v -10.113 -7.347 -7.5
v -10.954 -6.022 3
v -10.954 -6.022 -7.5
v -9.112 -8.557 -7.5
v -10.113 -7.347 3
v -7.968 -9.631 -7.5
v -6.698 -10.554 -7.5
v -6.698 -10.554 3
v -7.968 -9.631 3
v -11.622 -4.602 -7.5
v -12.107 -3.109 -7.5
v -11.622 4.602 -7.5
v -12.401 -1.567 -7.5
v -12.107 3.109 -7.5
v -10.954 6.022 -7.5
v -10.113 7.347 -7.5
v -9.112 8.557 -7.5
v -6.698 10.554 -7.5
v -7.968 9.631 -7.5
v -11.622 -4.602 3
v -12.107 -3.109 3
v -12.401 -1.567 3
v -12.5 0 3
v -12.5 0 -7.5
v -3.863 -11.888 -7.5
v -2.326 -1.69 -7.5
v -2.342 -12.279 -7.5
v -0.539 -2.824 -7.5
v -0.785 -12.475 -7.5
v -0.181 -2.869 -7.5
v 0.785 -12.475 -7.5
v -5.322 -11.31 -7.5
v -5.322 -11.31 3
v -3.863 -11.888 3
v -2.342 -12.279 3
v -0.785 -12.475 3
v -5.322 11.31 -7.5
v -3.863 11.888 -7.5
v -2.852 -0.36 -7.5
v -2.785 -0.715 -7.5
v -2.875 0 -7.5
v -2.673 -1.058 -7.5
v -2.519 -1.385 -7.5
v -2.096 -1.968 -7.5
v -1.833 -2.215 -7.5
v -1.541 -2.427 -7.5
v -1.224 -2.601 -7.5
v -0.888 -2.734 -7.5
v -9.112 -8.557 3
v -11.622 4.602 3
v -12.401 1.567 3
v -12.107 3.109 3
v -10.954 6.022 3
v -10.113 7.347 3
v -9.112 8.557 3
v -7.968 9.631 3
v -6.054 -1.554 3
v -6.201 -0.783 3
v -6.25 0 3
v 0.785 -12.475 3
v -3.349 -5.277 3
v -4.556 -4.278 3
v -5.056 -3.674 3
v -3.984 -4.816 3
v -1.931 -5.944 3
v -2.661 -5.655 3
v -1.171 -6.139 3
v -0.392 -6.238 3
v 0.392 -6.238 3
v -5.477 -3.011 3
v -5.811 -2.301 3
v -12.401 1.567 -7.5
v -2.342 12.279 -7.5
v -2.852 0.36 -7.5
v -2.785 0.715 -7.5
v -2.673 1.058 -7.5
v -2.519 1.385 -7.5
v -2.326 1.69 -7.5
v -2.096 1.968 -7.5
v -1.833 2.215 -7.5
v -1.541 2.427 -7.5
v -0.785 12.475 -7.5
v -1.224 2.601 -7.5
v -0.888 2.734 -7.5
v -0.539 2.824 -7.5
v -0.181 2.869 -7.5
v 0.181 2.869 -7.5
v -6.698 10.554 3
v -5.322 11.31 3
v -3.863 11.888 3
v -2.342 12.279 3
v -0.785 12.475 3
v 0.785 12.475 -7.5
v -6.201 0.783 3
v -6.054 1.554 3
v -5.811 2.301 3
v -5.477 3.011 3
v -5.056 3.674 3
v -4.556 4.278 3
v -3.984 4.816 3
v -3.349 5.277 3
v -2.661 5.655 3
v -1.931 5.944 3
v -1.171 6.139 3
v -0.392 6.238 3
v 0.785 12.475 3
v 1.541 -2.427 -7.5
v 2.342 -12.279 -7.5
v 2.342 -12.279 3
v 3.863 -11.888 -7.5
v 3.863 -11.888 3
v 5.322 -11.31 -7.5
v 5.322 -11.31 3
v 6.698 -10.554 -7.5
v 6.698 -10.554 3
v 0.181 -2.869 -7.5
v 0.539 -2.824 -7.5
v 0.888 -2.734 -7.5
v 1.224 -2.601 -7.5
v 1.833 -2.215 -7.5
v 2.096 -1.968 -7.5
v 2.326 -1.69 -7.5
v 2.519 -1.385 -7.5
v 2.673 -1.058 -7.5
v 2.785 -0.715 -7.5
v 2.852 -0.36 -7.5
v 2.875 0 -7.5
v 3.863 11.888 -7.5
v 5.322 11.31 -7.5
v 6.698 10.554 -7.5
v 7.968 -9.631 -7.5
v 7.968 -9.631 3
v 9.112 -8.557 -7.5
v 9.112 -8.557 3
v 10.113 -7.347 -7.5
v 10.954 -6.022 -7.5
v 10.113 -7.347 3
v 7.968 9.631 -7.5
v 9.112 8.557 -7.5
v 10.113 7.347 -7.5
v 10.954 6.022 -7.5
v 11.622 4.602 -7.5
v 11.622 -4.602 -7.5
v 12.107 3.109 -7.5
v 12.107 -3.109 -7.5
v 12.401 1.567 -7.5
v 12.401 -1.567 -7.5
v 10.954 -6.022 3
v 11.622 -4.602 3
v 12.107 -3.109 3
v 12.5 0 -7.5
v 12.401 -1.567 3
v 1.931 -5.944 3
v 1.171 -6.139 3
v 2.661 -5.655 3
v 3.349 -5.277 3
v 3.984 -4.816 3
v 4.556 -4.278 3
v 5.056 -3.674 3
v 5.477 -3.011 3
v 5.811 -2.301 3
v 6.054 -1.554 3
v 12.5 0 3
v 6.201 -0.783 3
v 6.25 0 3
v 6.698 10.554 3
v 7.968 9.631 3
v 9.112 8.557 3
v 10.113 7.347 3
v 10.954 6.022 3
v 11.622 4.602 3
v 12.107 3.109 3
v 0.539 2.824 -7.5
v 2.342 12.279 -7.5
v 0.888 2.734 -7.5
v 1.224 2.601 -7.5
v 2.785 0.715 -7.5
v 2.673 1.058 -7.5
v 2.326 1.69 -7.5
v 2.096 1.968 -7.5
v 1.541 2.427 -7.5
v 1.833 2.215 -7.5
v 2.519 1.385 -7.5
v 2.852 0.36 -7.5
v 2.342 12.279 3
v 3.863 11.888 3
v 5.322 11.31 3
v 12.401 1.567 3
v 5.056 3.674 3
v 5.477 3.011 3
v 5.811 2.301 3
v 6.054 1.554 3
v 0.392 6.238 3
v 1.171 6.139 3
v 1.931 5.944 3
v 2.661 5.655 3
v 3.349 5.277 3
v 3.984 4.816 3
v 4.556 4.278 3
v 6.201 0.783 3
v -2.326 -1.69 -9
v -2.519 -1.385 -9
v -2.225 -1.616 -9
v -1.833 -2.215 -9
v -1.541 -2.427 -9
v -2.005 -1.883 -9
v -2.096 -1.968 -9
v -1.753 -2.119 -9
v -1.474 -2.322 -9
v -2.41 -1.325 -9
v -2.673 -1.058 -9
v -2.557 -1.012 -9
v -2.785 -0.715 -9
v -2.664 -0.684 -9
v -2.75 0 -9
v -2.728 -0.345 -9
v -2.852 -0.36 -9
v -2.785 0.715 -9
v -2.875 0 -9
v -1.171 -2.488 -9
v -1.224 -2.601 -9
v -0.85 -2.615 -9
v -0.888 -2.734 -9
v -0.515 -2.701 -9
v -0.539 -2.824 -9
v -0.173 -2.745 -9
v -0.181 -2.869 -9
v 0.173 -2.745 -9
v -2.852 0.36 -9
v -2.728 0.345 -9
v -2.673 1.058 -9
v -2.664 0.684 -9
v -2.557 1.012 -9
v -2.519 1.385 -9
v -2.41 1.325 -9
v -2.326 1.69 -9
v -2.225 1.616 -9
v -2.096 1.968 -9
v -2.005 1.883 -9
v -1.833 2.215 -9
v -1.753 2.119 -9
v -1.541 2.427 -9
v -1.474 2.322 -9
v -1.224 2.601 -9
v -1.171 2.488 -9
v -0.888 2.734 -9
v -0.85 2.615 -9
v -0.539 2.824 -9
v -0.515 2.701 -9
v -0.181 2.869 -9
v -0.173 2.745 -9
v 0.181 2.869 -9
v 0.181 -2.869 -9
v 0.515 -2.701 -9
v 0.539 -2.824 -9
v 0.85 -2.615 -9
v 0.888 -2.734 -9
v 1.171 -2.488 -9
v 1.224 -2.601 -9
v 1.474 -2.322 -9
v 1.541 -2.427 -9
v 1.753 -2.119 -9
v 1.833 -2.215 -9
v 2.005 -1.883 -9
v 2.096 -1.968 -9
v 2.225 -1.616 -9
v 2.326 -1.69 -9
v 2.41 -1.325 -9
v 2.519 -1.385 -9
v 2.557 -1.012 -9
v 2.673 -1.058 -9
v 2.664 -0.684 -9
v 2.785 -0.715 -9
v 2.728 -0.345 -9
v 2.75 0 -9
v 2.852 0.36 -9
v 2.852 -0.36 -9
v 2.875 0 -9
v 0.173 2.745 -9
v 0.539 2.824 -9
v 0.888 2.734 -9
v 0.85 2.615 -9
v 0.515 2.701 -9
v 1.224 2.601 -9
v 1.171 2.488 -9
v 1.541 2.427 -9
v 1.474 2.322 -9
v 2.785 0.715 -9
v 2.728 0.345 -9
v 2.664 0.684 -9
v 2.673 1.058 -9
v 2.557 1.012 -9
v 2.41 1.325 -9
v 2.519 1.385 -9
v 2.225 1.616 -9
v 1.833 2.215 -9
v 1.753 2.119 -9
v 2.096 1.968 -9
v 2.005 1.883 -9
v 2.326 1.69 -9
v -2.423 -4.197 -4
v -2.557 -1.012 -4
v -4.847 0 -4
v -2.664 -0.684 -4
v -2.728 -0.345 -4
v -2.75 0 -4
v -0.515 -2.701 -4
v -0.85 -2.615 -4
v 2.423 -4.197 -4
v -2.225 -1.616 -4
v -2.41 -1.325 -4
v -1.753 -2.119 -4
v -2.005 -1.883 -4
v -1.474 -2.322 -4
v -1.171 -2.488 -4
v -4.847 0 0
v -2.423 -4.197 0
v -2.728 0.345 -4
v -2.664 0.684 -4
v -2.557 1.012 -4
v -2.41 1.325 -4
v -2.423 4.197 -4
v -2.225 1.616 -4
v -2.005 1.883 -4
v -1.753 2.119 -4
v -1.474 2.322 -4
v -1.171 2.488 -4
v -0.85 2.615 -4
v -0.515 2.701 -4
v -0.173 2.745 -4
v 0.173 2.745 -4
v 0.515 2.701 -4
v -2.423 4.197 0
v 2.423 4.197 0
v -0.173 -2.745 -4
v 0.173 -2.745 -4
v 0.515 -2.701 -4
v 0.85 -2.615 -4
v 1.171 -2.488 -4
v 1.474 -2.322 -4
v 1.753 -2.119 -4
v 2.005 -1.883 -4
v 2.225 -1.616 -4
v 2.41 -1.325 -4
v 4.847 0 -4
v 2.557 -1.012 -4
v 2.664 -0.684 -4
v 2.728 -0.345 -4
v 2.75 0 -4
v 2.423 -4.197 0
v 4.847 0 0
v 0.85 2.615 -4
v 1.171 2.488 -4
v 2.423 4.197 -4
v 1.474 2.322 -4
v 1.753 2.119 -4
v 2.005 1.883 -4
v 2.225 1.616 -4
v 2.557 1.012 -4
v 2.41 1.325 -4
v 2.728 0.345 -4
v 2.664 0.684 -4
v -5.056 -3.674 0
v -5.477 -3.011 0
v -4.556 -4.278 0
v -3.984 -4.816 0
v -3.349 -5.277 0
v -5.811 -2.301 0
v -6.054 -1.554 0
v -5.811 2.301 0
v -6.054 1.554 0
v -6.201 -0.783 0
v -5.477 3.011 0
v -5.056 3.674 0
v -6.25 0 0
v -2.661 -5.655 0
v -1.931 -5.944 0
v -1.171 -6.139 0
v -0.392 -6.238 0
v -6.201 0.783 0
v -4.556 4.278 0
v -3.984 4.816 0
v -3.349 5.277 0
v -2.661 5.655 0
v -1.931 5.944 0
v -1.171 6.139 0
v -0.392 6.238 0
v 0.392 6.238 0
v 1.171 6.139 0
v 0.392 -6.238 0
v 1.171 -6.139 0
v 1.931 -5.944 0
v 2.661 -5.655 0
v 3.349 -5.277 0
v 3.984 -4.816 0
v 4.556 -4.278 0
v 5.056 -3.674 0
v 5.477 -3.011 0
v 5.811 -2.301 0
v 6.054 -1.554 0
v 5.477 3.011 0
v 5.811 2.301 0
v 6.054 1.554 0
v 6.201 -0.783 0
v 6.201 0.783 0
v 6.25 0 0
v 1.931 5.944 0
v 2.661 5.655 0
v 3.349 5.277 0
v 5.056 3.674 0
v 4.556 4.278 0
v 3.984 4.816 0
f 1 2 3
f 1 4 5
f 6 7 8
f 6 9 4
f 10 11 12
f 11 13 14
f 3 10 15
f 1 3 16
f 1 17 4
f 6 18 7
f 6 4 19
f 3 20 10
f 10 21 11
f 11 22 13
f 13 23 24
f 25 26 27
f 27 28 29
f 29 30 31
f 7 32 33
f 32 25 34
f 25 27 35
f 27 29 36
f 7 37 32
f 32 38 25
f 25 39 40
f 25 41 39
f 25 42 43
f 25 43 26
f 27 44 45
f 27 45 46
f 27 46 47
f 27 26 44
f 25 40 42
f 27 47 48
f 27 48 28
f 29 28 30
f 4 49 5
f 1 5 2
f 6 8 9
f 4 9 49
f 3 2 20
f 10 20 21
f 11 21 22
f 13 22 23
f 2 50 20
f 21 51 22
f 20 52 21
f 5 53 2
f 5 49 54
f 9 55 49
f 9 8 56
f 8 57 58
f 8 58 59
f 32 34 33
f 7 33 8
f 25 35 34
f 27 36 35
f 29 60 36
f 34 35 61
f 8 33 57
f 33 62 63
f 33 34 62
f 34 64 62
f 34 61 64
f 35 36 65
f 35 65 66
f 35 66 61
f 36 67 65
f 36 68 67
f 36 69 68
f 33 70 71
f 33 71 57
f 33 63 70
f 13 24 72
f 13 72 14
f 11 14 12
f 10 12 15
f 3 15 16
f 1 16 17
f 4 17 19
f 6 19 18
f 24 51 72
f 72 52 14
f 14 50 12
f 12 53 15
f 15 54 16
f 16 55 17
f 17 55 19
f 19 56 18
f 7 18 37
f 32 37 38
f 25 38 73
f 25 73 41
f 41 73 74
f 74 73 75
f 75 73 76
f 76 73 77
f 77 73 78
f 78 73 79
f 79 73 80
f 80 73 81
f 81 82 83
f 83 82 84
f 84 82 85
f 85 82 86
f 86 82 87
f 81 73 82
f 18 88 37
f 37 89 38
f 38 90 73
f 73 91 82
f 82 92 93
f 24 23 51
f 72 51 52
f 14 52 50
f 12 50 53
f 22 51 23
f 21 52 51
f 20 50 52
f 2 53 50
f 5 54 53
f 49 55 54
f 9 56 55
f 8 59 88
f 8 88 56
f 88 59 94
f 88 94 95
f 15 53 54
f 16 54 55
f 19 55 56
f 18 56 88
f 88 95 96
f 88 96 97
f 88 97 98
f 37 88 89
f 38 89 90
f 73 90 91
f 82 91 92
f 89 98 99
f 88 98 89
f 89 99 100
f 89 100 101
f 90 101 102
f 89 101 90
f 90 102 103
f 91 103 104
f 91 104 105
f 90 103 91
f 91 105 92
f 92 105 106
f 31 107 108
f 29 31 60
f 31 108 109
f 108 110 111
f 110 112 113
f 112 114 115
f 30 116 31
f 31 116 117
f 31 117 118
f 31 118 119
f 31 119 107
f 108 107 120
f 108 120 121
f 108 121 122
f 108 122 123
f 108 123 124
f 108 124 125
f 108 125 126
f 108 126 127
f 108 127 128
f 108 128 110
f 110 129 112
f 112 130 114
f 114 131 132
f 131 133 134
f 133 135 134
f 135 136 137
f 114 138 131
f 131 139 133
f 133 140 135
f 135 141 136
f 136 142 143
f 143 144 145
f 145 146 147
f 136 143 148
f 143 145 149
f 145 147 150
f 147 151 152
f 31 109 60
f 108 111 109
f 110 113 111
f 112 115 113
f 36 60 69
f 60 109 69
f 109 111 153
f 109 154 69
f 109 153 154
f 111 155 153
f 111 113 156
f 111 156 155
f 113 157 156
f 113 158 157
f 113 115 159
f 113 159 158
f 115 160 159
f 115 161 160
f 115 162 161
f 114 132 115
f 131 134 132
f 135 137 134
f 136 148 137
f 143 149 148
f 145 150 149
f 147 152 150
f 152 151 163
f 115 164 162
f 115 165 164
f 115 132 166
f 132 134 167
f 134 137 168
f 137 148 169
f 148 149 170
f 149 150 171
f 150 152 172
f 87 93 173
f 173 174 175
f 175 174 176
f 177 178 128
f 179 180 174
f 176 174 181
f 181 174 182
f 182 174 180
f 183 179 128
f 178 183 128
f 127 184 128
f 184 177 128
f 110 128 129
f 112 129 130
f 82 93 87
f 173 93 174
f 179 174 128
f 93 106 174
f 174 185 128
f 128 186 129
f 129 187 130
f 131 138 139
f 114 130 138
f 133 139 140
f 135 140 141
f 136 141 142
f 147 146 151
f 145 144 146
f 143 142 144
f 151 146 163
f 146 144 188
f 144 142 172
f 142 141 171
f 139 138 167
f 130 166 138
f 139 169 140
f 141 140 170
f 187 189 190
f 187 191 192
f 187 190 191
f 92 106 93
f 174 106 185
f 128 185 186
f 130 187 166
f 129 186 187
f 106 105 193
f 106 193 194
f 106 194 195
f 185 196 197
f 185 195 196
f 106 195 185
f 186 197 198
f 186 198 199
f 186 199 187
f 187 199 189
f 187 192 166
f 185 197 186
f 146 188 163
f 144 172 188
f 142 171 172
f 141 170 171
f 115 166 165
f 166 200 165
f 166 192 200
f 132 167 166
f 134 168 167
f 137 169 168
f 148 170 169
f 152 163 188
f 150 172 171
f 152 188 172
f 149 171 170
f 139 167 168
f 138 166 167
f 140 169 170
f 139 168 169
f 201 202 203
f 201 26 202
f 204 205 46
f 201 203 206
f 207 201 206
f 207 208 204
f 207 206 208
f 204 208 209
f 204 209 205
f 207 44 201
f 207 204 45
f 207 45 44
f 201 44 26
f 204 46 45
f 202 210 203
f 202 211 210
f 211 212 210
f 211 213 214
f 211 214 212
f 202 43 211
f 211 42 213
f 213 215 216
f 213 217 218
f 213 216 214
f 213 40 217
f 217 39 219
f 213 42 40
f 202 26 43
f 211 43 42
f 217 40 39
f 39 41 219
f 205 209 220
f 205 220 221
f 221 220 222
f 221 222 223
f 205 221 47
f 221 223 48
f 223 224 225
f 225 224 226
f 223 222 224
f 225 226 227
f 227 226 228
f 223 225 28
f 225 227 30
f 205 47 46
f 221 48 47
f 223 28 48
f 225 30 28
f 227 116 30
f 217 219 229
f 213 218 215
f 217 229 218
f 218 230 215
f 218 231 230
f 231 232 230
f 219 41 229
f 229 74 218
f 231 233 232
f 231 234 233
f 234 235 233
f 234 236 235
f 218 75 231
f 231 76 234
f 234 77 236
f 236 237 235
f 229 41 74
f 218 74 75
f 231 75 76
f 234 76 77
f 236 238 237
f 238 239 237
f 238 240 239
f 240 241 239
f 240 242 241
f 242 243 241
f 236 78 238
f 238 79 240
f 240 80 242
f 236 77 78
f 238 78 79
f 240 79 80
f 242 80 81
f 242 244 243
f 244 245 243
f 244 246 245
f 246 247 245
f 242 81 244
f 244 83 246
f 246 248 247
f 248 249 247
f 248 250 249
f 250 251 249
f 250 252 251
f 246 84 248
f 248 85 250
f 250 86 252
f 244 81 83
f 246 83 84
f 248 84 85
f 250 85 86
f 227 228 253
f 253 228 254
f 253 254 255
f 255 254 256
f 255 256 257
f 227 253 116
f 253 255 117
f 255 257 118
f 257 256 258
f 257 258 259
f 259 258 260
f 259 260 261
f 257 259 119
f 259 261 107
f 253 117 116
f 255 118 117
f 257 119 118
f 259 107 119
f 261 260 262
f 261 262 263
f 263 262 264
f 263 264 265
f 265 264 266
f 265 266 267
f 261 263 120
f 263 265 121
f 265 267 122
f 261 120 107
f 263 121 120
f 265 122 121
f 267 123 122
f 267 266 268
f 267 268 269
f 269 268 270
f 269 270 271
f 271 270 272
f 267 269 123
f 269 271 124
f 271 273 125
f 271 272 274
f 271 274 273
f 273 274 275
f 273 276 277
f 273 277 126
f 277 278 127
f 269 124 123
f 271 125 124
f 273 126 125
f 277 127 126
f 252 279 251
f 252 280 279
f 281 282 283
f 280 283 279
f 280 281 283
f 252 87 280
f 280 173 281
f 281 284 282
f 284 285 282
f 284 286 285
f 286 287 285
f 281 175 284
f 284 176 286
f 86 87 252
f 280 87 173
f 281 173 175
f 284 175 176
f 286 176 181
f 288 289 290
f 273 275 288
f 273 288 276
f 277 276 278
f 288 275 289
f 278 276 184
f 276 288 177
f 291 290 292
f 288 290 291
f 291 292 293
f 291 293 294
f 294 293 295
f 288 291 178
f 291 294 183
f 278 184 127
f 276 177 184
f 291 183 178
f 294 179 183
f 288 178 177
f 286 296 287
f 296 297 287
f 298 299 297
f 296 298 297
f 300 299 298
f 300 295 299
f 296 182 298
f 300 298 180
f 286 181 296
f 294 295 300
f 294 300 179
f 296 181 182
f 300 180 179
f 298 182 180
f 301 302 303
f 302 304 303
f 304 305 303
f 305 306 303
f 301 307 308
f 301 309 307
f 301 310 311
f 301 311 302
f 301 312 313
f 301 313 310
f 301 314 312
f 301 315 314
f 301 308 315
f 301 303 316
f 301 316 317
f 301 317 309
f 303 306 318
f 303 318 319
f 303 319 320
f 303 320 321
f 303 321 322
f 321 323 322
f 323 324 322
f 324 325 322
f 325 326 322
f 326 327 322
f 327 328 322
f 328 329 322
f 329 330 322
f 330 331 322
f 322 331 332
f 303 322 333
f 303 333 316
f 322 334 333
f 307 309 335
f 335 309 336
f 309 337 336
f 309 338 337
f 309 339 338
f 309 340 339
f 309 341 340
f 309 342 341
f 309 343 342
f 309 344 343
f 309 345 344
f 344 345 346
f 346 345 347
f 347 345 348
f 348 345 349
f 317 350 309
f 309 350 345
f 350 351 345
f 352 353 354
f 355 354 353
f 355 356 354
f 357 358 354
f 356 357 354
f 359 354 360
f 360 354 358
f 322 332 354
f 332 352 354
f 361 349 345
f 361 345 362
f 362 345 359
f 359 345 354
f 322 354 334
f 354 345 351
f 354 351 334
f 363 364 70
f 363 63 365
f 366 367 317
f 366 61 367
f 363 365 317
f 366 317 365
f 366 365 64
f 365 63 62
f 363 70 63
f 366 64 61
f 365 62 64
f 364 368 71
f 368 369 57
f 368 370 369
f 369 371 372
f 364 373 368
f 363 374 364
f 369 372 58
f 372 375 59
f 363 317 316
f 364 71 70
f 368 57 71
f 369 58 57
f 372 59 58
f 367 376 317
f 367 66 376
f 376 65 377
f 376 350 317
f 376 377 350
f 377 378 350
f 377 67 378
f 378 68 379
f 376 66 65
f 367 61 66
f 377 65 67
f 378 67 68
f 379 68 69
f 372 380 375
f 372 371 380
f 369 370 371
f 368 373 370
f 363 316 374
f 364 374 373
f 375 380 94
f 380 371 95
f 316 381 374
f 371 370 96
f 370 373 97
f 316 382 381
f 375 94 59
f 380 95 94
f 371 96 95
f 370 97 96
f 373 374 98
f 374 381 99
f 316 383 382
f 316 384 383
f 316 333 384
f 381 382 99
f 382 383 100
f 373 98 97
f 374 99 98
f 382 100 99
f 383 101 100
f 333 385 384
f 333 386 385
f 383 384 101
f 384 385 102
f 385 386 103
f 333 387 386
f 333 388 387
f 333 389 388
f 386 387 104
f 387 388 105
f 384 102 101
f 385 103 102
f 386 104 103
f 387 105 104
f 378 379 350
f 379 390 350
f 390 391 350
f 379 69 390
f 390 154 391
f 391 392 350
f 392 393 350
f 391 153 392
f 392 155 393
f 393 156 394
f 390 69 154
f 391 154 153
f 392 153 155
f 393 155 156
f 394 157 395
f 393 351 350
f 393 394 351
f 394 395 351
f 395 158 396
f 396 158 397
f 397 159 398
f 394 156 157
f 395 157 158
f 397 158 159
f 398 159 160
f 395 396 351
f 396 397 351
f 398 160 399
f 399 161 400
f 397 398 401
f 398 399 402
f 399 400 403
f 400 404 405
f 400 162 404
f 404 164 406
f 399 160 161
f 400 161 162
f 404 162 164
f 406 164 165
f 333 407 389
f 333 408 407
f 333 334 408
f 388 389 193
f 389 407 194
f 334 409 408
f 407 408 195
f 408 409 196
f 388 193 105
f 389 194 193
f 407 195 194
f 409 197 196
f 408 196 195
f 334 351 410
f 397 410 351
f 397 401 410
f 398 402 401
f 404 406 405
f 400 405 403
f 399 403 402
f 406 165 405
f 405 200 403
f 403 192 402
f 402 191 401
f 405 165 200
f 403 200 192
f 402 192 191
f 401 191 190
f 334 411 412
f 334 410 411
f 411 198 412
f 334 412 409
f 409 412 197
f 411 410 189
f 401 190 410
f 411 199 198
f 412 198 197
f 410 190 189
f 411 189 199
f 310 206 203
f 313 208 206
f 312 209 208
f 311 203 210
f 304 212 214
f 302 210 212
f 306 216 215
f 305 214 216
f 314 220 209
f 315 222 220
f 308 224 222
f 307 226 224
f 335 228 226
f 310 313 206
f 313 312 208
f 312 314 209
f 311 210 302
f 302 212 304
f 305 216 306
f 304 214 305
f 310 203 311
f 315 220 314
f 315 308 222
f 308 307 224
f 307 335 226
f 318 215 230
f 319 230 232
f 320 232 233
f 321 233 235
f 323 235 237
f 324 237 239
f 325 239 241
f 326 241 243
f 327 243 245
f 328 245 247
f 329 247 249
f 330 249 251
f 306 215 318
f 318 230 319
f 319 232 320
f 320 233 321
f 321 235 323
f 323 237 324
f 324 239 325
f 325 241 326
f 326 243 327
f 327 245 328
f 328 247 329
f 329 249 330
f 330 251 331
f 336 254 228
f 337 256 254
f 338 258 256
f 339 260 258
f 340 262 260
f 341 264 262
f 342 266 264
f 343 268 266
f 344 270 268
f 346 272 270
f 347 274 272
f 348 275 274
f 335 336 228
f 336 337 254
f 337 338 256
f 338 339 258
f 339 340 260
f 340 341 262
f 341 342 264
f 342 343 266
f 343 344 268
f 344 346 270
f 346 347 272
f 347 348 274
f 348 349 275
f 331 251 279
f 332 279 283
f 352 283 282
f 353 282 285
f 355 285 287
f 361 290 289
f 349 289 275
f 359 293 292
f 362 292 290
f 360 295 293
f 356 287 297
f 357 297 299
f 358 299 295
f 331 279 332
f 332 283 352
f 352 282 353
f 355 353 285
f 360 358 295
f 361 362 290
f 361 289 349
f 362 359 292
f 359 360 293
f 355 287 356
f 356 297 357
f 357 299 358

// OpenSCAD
$fn = 50;

difference() {
	union() {
		translate(v = [0, 0, -7.5]) {
			cylinder(h = 10.5, r = 12.5);
		}
		#translate(v = [0, 0, -9.0]) {
			cylinder(h = 9, r = 2.875);
		}
	}
	union() {
		translate(v = [0, 0, 0]) {
			rotate(a = [0, 0, 0]) {
				difference() {
					union() {
						translate(v = [0, 0, -4]) {
							linear_extrude(height = 4) {
								polygon(points = [[4.8468, 0.0], [2.4234000000000004, 4.197451927062417], [-2.423399999999999, 4.197451927062417], [-4.8468, 5.935618106107392e-16], [-2.423400000000002, -4.197451927062416], [2.423399999999997, -4.197451927062419]]);
							}
						}
					}
					union();
				}
			}
		}
		#cylinder(h = 3, r = 6.25);
		#translate(v = [0, 0, -100.0]) {
			cylinder(h = 200, r = 2.75);
		}
	}
}
